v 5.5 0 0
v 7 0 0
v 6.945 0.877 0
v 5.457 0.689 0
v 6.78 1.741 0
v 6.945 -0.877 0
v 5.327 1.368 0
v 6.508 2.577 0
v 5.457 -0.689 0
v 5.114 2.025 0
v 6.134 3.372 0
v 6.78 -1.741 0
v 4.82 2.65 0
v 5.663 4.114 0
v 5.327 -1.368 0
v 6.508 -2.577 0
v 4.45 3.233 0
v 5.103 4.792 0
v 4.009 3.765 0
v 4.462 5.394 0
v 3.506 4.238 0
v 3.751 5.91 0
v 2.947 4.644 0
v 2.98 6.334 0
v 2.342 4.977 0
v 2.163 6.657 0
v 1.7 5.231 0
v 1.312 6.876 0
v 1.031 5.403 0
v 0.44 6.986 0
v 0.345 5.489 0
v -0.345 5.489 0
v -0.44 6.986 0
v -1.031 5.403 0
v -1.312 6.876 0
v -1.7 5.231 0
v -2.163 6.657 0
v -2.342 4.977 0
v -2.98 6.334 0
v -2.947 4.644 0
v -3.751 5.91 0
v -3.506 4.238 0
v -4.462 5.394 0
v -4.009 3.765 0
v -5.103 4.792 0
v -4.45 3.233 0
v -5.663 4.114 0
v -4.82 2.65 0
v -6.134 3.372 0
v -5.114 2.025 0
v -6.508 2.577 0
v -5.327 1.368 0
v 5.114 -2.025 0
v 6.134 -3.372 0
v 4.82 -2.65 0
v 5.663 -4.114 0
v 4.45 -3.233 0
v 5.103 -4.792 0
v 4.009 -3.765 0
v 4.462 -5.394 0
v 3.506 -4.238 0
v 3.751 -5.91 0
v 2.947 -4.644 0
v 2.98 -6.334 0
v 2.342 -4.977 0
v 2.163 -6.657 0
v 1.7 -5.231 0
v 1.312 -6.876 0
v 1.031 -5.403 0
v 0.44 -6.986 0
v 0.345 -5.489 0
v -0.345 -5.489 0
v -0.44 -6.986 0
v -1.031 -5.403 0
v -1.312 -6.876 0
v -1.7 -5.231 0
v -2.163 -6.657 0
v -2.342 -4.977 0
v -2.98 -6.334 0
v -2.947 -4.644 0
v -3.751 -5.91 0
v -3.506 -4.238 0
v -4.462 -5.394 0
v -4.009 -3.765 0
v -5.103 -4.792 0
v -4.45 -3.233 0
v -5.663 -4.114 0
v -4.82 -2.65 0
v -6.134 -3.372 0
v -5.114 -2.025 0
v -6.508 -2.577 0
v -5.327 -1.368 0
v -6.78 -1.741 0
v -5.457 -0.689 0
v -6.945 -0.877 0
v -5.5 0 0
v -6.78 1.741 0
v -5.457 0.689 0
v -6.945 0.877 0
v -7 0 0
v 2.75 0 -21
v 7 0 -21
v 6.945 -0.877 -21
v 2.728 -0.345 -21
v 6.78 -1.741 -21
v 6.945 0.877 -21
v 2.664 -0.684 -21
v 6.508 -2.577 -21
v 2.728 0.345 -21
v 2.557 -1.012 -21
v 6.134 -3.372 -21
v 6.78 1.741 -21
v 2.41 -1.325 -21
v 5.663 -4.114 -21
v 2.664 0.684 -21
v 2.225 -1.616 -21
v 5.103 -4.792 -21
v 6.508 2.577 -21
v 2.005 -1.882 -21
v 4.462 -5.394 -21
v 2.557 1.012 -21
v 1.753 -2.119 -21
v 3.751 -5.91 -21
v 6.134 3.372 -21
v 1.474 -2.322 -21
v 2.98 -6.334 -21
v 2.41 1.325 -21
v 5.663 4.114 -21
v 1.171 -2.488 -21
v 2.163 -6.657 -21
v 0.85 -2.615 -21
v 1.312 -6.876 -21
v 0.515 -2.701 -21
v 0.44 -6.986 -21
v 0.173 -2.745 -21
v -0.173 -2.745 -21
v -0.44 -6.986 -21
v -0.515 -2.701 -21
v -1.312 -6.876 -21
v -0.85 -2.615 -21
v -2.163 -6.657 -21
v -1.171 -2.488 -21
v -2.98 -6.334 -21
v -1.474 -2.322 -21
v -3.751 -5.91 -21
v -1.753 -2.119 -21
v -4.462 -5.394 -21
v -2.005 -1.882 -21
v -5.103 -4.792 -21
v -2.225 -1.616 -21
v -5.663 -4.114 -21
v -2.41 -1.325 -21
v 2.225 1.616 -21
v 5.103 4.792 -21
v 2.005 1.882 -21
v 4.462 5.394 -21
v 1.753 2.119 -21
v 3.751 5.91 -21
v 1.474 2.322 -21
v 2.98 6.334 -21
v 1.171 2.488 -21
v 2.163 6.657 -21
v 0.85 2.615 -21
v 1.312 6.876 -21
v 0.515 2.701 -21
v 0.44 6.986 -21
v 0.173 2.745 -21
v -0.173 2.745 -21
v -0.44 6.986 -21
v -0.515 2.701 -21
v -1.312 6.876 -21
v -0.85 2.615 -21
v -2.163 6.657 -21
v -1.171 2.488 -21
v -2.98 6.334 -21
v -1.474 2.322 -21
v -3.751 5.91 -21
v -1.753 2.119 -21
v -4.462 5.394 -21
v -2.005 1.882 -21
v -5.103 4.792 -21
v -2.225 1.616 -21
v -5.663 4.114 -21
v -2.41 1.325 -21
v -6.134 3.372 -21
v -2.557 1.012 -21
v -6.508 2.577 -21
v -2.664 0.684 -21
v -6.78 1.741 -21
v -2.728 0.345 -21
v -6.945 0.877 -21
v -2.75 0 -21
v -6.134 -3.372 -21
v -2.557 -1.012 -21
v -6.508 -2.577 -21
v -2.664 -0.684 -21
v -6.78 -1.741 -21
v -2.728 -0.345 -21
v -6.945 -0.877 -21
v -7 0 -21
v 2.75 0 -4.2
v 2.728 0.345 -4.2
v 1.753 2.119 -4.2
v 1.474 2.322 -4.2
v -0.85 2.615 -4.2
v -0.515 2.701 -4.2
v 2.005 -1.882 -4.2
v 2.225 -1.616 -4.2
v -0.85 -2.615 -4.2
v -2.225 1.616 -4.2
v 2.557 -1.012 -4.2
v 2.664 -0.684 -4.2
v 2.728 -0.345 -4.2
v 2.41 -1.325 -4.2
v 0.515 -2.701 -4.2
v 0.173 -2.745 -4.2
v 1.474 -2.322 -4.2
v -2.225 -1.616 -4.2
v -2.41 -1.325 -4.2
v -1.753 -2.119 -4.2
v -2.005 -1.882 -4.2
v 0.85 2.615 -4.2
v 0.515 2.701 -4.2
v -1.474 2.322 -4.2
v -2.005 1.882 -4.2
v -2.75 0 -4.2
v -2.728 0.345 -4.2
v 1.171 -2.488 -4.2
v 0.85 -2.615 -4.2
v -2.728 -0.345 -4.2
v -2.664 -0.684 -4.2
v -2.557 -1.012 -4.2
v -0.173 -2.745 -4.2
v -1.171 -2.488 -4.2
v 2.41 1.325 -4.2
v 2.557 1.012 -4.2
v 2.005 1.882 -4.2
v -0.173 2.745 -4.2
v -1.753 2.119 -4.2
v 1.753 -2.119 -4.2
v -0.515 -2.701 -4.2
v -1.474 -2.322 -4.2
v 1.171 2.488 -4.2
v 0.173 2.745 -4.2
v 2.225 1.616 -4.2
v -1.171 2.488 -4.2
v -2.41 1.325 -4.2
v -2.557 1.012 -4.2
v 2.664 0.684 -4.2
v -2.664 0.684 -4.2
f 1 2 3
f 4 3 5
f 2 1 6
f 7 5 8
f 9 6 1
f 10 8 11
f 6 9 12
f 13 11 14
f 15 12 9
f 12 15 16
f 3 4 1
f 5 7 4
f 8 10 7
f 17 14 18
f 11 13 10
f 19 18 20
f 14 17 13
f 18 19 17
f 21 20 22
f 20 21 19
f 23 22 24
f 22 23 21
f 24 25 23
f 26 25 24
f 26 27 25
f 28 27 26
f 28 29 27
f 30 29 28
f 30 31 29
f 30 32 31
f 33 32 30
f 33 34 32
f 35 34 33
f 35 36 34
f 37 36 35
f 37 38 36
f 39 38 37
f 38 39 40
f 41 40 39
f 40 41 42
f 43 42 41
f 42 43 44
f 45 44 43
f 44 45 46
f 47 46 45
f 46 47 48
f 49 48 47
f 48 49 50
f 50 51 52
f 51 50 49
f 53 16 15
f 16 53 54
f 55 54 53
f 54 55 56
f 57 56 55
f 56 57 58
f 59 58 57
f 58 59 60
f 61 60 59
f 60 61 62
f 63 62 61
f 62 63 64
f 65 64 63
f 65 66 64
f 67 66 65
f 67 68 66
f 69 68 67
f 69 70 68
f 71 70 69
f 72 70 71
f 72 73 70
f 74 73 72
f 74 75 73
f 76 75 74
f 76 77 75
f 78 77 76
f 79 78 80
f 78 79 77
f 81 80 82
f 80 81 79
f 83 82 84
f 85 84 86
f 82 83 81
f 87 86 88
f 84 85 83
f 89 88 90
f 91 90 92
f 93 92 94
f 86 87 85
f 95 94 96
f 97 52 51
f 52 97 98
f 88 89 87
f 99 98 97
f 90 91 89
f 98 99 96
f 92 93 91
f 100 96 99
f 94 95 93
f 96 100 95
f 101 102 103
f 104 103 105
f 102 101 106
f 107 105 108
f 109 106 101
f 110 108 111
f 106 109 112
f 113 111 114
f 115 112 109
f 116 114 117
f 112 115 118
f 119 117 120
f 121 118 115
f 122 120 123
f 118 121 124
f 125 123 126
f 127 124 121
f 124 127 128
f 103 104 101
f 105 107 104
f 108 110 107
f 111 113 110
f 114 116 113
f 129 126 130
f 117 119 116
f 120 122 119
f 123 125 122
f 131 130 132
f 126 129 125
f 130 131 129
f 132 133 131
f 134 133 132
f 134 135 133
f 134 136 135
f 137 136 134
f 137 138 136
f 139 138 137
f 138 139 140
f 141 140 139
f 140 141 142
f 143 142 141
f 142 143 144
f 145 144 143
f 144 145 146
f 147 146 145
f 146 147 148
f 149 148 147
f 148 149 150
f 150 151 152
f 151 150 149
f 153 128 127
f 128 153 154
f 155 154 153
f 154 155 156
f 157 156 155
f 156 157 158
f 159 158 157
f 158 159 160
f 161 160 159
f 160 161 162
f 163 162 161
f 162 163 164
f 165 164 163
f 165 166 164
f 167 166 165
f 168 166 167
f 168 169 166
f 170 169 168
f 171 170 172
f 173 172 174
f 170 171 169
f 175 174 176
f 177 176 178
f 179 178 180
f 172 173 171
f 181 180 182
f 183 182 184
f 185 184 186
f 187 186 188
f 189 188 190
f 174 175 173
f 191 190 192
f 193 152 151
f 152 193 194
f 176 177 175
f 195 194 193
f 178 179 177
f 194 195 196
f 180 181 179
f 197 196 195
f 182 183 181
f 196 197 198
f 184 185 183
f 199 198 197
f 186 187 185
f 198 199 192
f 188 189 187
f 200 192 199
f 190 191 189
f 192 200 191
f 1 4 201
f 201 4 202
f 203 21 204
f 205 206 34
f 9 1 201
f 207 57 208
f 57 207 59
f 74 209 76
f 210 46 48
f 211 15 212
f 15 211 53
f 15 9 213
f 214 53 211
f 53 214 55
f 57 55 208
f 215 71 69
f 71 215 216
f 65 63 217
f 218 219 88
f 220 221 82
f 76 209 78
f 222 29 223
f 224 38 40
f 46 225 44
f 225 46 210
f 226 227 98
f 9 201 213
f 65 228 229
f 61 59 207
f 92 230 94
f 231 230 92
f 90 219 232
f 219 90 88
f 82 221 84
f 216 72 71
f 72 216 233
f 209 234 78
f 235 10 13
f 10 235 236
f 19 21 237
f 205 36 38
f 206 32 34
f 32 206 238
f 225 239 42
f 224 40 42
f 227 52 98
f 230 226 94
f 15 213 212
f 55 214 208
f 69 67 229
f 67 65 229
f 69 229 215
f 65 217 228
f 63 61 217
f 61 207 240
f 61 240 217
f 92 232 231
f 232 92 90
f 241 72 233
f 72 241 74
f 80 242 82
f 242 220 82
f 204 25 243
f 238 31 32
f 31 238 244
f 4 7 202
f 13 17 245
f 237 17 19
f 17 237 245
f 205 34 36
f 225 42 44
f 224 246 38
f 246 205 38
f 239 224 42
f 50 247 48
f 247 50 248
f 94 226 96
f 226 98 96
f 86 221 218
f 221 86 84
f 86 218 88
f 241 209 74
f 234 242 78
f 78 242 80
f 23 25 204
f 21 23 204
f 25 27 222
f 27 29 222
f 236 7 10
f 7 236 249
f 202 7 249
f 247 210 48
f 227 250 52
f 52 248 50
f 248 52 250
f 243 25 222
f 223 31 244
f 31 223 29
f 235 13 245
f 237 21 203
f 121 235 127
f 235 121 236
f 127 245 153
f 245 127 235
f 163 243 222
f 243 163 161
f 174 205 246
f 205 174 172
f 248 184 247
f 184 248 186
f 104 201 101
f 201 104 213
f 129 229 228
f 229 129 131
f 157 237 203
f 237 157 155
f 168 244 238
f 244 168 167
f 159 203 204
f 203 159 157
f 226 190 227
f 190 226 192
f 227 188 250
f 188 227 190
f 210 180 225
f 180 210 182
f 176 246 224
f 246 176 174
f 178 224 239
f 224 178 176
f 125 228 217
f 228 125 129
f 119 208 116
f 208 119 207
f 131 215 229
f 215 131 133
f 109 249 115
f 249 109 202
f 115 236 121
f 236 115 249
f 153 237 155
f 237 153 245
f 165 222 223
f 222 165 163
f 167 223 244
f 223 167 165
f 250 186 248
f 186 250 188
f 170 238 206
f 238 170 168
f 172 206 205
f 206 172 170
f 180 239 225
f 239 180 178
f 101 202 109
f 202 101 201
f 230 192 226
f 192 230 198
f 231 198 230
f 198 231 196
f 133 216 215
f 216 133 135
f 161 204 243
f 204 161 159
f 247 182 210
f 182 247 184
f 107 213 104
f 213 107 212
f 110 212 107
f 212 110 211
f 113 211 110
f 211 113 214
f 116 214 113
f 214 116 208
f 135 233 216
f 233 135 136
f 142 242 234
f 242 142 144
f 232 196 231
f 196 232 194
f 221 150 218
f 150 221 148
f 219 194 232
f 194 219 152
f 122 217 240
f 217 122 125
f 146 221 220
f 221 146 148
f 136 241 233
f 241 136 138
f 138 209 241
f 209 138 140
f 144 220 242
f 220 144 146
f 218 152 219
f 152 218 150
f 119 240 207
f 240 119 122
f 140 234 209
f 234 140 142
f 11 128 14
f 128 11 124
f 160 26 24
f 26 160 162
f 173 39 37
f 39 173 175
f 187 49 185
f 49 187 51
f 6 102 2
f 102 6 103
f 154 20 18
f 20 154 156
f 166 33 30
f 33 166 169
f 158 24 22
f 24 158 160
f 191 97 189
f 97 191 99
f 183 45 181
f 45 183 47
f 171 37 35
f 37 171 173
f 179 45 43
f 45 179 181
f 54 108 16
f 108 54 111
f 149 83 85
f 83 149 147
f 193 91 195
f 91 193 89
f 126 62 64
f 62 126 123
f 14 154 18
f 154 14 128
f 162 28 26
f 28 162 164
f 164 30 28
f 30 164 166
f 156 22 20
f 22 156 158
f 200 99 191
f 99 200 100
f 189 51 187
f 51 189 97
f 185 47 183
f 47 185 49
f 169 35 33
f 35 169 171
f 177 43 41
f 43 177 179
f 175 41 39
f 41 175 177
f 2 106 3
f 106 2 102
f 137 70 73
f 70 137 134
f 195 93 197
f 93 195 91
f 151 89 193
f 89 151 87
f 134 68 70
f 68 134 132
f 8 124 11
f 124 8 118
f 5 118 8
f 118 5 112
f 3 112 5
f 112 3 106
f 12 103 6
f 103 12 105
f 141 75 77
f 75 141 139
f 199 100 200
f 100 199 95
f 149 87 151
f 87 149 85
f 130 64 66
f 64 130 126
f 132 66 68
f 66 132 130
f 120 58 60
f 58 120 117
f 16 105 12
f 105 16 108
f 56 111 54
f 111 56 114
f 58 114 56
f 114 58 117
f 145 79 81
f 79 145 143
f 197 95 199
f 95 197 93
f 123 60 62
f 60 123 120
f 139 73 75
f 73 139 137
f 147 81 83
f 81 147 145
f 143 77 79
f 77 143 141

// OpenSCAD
$fn = 50;


difference() {
	union() {
		translate(v = [0, 0, -21.0000000000]) {
			cylinder(h = 21, r = 7.0000000000);
		}
		cylinder(h = 0, r = 13.0000000000);
	}
	union() {
		translate(v = [0, 0, 0]) {
			rotate(a = [0, 0, 0]) {
				difference() {
					union() {
						#translate(v = [0, 0, -21.0000000000]) {
							cylinder(h = 21, r = 2.2500000000);
						}
						#translate(v = [0, 0, -4.2000000000]) {
							cylinder(h = 4.2000000000, r1 = 2.7500000000, r2 = 5.5000000000);
						}
						#translate(v = [0, 0, -21.0000000000]) {
							cylinder(h = 21, r = 2.7500000000);
						}
						#translate(v = [0, 0, -21.0000000000]) {
							cylinder(h = 21, r = 2.2500000000);
						}
					}
					union();
				}
			}
		}
	}
}
